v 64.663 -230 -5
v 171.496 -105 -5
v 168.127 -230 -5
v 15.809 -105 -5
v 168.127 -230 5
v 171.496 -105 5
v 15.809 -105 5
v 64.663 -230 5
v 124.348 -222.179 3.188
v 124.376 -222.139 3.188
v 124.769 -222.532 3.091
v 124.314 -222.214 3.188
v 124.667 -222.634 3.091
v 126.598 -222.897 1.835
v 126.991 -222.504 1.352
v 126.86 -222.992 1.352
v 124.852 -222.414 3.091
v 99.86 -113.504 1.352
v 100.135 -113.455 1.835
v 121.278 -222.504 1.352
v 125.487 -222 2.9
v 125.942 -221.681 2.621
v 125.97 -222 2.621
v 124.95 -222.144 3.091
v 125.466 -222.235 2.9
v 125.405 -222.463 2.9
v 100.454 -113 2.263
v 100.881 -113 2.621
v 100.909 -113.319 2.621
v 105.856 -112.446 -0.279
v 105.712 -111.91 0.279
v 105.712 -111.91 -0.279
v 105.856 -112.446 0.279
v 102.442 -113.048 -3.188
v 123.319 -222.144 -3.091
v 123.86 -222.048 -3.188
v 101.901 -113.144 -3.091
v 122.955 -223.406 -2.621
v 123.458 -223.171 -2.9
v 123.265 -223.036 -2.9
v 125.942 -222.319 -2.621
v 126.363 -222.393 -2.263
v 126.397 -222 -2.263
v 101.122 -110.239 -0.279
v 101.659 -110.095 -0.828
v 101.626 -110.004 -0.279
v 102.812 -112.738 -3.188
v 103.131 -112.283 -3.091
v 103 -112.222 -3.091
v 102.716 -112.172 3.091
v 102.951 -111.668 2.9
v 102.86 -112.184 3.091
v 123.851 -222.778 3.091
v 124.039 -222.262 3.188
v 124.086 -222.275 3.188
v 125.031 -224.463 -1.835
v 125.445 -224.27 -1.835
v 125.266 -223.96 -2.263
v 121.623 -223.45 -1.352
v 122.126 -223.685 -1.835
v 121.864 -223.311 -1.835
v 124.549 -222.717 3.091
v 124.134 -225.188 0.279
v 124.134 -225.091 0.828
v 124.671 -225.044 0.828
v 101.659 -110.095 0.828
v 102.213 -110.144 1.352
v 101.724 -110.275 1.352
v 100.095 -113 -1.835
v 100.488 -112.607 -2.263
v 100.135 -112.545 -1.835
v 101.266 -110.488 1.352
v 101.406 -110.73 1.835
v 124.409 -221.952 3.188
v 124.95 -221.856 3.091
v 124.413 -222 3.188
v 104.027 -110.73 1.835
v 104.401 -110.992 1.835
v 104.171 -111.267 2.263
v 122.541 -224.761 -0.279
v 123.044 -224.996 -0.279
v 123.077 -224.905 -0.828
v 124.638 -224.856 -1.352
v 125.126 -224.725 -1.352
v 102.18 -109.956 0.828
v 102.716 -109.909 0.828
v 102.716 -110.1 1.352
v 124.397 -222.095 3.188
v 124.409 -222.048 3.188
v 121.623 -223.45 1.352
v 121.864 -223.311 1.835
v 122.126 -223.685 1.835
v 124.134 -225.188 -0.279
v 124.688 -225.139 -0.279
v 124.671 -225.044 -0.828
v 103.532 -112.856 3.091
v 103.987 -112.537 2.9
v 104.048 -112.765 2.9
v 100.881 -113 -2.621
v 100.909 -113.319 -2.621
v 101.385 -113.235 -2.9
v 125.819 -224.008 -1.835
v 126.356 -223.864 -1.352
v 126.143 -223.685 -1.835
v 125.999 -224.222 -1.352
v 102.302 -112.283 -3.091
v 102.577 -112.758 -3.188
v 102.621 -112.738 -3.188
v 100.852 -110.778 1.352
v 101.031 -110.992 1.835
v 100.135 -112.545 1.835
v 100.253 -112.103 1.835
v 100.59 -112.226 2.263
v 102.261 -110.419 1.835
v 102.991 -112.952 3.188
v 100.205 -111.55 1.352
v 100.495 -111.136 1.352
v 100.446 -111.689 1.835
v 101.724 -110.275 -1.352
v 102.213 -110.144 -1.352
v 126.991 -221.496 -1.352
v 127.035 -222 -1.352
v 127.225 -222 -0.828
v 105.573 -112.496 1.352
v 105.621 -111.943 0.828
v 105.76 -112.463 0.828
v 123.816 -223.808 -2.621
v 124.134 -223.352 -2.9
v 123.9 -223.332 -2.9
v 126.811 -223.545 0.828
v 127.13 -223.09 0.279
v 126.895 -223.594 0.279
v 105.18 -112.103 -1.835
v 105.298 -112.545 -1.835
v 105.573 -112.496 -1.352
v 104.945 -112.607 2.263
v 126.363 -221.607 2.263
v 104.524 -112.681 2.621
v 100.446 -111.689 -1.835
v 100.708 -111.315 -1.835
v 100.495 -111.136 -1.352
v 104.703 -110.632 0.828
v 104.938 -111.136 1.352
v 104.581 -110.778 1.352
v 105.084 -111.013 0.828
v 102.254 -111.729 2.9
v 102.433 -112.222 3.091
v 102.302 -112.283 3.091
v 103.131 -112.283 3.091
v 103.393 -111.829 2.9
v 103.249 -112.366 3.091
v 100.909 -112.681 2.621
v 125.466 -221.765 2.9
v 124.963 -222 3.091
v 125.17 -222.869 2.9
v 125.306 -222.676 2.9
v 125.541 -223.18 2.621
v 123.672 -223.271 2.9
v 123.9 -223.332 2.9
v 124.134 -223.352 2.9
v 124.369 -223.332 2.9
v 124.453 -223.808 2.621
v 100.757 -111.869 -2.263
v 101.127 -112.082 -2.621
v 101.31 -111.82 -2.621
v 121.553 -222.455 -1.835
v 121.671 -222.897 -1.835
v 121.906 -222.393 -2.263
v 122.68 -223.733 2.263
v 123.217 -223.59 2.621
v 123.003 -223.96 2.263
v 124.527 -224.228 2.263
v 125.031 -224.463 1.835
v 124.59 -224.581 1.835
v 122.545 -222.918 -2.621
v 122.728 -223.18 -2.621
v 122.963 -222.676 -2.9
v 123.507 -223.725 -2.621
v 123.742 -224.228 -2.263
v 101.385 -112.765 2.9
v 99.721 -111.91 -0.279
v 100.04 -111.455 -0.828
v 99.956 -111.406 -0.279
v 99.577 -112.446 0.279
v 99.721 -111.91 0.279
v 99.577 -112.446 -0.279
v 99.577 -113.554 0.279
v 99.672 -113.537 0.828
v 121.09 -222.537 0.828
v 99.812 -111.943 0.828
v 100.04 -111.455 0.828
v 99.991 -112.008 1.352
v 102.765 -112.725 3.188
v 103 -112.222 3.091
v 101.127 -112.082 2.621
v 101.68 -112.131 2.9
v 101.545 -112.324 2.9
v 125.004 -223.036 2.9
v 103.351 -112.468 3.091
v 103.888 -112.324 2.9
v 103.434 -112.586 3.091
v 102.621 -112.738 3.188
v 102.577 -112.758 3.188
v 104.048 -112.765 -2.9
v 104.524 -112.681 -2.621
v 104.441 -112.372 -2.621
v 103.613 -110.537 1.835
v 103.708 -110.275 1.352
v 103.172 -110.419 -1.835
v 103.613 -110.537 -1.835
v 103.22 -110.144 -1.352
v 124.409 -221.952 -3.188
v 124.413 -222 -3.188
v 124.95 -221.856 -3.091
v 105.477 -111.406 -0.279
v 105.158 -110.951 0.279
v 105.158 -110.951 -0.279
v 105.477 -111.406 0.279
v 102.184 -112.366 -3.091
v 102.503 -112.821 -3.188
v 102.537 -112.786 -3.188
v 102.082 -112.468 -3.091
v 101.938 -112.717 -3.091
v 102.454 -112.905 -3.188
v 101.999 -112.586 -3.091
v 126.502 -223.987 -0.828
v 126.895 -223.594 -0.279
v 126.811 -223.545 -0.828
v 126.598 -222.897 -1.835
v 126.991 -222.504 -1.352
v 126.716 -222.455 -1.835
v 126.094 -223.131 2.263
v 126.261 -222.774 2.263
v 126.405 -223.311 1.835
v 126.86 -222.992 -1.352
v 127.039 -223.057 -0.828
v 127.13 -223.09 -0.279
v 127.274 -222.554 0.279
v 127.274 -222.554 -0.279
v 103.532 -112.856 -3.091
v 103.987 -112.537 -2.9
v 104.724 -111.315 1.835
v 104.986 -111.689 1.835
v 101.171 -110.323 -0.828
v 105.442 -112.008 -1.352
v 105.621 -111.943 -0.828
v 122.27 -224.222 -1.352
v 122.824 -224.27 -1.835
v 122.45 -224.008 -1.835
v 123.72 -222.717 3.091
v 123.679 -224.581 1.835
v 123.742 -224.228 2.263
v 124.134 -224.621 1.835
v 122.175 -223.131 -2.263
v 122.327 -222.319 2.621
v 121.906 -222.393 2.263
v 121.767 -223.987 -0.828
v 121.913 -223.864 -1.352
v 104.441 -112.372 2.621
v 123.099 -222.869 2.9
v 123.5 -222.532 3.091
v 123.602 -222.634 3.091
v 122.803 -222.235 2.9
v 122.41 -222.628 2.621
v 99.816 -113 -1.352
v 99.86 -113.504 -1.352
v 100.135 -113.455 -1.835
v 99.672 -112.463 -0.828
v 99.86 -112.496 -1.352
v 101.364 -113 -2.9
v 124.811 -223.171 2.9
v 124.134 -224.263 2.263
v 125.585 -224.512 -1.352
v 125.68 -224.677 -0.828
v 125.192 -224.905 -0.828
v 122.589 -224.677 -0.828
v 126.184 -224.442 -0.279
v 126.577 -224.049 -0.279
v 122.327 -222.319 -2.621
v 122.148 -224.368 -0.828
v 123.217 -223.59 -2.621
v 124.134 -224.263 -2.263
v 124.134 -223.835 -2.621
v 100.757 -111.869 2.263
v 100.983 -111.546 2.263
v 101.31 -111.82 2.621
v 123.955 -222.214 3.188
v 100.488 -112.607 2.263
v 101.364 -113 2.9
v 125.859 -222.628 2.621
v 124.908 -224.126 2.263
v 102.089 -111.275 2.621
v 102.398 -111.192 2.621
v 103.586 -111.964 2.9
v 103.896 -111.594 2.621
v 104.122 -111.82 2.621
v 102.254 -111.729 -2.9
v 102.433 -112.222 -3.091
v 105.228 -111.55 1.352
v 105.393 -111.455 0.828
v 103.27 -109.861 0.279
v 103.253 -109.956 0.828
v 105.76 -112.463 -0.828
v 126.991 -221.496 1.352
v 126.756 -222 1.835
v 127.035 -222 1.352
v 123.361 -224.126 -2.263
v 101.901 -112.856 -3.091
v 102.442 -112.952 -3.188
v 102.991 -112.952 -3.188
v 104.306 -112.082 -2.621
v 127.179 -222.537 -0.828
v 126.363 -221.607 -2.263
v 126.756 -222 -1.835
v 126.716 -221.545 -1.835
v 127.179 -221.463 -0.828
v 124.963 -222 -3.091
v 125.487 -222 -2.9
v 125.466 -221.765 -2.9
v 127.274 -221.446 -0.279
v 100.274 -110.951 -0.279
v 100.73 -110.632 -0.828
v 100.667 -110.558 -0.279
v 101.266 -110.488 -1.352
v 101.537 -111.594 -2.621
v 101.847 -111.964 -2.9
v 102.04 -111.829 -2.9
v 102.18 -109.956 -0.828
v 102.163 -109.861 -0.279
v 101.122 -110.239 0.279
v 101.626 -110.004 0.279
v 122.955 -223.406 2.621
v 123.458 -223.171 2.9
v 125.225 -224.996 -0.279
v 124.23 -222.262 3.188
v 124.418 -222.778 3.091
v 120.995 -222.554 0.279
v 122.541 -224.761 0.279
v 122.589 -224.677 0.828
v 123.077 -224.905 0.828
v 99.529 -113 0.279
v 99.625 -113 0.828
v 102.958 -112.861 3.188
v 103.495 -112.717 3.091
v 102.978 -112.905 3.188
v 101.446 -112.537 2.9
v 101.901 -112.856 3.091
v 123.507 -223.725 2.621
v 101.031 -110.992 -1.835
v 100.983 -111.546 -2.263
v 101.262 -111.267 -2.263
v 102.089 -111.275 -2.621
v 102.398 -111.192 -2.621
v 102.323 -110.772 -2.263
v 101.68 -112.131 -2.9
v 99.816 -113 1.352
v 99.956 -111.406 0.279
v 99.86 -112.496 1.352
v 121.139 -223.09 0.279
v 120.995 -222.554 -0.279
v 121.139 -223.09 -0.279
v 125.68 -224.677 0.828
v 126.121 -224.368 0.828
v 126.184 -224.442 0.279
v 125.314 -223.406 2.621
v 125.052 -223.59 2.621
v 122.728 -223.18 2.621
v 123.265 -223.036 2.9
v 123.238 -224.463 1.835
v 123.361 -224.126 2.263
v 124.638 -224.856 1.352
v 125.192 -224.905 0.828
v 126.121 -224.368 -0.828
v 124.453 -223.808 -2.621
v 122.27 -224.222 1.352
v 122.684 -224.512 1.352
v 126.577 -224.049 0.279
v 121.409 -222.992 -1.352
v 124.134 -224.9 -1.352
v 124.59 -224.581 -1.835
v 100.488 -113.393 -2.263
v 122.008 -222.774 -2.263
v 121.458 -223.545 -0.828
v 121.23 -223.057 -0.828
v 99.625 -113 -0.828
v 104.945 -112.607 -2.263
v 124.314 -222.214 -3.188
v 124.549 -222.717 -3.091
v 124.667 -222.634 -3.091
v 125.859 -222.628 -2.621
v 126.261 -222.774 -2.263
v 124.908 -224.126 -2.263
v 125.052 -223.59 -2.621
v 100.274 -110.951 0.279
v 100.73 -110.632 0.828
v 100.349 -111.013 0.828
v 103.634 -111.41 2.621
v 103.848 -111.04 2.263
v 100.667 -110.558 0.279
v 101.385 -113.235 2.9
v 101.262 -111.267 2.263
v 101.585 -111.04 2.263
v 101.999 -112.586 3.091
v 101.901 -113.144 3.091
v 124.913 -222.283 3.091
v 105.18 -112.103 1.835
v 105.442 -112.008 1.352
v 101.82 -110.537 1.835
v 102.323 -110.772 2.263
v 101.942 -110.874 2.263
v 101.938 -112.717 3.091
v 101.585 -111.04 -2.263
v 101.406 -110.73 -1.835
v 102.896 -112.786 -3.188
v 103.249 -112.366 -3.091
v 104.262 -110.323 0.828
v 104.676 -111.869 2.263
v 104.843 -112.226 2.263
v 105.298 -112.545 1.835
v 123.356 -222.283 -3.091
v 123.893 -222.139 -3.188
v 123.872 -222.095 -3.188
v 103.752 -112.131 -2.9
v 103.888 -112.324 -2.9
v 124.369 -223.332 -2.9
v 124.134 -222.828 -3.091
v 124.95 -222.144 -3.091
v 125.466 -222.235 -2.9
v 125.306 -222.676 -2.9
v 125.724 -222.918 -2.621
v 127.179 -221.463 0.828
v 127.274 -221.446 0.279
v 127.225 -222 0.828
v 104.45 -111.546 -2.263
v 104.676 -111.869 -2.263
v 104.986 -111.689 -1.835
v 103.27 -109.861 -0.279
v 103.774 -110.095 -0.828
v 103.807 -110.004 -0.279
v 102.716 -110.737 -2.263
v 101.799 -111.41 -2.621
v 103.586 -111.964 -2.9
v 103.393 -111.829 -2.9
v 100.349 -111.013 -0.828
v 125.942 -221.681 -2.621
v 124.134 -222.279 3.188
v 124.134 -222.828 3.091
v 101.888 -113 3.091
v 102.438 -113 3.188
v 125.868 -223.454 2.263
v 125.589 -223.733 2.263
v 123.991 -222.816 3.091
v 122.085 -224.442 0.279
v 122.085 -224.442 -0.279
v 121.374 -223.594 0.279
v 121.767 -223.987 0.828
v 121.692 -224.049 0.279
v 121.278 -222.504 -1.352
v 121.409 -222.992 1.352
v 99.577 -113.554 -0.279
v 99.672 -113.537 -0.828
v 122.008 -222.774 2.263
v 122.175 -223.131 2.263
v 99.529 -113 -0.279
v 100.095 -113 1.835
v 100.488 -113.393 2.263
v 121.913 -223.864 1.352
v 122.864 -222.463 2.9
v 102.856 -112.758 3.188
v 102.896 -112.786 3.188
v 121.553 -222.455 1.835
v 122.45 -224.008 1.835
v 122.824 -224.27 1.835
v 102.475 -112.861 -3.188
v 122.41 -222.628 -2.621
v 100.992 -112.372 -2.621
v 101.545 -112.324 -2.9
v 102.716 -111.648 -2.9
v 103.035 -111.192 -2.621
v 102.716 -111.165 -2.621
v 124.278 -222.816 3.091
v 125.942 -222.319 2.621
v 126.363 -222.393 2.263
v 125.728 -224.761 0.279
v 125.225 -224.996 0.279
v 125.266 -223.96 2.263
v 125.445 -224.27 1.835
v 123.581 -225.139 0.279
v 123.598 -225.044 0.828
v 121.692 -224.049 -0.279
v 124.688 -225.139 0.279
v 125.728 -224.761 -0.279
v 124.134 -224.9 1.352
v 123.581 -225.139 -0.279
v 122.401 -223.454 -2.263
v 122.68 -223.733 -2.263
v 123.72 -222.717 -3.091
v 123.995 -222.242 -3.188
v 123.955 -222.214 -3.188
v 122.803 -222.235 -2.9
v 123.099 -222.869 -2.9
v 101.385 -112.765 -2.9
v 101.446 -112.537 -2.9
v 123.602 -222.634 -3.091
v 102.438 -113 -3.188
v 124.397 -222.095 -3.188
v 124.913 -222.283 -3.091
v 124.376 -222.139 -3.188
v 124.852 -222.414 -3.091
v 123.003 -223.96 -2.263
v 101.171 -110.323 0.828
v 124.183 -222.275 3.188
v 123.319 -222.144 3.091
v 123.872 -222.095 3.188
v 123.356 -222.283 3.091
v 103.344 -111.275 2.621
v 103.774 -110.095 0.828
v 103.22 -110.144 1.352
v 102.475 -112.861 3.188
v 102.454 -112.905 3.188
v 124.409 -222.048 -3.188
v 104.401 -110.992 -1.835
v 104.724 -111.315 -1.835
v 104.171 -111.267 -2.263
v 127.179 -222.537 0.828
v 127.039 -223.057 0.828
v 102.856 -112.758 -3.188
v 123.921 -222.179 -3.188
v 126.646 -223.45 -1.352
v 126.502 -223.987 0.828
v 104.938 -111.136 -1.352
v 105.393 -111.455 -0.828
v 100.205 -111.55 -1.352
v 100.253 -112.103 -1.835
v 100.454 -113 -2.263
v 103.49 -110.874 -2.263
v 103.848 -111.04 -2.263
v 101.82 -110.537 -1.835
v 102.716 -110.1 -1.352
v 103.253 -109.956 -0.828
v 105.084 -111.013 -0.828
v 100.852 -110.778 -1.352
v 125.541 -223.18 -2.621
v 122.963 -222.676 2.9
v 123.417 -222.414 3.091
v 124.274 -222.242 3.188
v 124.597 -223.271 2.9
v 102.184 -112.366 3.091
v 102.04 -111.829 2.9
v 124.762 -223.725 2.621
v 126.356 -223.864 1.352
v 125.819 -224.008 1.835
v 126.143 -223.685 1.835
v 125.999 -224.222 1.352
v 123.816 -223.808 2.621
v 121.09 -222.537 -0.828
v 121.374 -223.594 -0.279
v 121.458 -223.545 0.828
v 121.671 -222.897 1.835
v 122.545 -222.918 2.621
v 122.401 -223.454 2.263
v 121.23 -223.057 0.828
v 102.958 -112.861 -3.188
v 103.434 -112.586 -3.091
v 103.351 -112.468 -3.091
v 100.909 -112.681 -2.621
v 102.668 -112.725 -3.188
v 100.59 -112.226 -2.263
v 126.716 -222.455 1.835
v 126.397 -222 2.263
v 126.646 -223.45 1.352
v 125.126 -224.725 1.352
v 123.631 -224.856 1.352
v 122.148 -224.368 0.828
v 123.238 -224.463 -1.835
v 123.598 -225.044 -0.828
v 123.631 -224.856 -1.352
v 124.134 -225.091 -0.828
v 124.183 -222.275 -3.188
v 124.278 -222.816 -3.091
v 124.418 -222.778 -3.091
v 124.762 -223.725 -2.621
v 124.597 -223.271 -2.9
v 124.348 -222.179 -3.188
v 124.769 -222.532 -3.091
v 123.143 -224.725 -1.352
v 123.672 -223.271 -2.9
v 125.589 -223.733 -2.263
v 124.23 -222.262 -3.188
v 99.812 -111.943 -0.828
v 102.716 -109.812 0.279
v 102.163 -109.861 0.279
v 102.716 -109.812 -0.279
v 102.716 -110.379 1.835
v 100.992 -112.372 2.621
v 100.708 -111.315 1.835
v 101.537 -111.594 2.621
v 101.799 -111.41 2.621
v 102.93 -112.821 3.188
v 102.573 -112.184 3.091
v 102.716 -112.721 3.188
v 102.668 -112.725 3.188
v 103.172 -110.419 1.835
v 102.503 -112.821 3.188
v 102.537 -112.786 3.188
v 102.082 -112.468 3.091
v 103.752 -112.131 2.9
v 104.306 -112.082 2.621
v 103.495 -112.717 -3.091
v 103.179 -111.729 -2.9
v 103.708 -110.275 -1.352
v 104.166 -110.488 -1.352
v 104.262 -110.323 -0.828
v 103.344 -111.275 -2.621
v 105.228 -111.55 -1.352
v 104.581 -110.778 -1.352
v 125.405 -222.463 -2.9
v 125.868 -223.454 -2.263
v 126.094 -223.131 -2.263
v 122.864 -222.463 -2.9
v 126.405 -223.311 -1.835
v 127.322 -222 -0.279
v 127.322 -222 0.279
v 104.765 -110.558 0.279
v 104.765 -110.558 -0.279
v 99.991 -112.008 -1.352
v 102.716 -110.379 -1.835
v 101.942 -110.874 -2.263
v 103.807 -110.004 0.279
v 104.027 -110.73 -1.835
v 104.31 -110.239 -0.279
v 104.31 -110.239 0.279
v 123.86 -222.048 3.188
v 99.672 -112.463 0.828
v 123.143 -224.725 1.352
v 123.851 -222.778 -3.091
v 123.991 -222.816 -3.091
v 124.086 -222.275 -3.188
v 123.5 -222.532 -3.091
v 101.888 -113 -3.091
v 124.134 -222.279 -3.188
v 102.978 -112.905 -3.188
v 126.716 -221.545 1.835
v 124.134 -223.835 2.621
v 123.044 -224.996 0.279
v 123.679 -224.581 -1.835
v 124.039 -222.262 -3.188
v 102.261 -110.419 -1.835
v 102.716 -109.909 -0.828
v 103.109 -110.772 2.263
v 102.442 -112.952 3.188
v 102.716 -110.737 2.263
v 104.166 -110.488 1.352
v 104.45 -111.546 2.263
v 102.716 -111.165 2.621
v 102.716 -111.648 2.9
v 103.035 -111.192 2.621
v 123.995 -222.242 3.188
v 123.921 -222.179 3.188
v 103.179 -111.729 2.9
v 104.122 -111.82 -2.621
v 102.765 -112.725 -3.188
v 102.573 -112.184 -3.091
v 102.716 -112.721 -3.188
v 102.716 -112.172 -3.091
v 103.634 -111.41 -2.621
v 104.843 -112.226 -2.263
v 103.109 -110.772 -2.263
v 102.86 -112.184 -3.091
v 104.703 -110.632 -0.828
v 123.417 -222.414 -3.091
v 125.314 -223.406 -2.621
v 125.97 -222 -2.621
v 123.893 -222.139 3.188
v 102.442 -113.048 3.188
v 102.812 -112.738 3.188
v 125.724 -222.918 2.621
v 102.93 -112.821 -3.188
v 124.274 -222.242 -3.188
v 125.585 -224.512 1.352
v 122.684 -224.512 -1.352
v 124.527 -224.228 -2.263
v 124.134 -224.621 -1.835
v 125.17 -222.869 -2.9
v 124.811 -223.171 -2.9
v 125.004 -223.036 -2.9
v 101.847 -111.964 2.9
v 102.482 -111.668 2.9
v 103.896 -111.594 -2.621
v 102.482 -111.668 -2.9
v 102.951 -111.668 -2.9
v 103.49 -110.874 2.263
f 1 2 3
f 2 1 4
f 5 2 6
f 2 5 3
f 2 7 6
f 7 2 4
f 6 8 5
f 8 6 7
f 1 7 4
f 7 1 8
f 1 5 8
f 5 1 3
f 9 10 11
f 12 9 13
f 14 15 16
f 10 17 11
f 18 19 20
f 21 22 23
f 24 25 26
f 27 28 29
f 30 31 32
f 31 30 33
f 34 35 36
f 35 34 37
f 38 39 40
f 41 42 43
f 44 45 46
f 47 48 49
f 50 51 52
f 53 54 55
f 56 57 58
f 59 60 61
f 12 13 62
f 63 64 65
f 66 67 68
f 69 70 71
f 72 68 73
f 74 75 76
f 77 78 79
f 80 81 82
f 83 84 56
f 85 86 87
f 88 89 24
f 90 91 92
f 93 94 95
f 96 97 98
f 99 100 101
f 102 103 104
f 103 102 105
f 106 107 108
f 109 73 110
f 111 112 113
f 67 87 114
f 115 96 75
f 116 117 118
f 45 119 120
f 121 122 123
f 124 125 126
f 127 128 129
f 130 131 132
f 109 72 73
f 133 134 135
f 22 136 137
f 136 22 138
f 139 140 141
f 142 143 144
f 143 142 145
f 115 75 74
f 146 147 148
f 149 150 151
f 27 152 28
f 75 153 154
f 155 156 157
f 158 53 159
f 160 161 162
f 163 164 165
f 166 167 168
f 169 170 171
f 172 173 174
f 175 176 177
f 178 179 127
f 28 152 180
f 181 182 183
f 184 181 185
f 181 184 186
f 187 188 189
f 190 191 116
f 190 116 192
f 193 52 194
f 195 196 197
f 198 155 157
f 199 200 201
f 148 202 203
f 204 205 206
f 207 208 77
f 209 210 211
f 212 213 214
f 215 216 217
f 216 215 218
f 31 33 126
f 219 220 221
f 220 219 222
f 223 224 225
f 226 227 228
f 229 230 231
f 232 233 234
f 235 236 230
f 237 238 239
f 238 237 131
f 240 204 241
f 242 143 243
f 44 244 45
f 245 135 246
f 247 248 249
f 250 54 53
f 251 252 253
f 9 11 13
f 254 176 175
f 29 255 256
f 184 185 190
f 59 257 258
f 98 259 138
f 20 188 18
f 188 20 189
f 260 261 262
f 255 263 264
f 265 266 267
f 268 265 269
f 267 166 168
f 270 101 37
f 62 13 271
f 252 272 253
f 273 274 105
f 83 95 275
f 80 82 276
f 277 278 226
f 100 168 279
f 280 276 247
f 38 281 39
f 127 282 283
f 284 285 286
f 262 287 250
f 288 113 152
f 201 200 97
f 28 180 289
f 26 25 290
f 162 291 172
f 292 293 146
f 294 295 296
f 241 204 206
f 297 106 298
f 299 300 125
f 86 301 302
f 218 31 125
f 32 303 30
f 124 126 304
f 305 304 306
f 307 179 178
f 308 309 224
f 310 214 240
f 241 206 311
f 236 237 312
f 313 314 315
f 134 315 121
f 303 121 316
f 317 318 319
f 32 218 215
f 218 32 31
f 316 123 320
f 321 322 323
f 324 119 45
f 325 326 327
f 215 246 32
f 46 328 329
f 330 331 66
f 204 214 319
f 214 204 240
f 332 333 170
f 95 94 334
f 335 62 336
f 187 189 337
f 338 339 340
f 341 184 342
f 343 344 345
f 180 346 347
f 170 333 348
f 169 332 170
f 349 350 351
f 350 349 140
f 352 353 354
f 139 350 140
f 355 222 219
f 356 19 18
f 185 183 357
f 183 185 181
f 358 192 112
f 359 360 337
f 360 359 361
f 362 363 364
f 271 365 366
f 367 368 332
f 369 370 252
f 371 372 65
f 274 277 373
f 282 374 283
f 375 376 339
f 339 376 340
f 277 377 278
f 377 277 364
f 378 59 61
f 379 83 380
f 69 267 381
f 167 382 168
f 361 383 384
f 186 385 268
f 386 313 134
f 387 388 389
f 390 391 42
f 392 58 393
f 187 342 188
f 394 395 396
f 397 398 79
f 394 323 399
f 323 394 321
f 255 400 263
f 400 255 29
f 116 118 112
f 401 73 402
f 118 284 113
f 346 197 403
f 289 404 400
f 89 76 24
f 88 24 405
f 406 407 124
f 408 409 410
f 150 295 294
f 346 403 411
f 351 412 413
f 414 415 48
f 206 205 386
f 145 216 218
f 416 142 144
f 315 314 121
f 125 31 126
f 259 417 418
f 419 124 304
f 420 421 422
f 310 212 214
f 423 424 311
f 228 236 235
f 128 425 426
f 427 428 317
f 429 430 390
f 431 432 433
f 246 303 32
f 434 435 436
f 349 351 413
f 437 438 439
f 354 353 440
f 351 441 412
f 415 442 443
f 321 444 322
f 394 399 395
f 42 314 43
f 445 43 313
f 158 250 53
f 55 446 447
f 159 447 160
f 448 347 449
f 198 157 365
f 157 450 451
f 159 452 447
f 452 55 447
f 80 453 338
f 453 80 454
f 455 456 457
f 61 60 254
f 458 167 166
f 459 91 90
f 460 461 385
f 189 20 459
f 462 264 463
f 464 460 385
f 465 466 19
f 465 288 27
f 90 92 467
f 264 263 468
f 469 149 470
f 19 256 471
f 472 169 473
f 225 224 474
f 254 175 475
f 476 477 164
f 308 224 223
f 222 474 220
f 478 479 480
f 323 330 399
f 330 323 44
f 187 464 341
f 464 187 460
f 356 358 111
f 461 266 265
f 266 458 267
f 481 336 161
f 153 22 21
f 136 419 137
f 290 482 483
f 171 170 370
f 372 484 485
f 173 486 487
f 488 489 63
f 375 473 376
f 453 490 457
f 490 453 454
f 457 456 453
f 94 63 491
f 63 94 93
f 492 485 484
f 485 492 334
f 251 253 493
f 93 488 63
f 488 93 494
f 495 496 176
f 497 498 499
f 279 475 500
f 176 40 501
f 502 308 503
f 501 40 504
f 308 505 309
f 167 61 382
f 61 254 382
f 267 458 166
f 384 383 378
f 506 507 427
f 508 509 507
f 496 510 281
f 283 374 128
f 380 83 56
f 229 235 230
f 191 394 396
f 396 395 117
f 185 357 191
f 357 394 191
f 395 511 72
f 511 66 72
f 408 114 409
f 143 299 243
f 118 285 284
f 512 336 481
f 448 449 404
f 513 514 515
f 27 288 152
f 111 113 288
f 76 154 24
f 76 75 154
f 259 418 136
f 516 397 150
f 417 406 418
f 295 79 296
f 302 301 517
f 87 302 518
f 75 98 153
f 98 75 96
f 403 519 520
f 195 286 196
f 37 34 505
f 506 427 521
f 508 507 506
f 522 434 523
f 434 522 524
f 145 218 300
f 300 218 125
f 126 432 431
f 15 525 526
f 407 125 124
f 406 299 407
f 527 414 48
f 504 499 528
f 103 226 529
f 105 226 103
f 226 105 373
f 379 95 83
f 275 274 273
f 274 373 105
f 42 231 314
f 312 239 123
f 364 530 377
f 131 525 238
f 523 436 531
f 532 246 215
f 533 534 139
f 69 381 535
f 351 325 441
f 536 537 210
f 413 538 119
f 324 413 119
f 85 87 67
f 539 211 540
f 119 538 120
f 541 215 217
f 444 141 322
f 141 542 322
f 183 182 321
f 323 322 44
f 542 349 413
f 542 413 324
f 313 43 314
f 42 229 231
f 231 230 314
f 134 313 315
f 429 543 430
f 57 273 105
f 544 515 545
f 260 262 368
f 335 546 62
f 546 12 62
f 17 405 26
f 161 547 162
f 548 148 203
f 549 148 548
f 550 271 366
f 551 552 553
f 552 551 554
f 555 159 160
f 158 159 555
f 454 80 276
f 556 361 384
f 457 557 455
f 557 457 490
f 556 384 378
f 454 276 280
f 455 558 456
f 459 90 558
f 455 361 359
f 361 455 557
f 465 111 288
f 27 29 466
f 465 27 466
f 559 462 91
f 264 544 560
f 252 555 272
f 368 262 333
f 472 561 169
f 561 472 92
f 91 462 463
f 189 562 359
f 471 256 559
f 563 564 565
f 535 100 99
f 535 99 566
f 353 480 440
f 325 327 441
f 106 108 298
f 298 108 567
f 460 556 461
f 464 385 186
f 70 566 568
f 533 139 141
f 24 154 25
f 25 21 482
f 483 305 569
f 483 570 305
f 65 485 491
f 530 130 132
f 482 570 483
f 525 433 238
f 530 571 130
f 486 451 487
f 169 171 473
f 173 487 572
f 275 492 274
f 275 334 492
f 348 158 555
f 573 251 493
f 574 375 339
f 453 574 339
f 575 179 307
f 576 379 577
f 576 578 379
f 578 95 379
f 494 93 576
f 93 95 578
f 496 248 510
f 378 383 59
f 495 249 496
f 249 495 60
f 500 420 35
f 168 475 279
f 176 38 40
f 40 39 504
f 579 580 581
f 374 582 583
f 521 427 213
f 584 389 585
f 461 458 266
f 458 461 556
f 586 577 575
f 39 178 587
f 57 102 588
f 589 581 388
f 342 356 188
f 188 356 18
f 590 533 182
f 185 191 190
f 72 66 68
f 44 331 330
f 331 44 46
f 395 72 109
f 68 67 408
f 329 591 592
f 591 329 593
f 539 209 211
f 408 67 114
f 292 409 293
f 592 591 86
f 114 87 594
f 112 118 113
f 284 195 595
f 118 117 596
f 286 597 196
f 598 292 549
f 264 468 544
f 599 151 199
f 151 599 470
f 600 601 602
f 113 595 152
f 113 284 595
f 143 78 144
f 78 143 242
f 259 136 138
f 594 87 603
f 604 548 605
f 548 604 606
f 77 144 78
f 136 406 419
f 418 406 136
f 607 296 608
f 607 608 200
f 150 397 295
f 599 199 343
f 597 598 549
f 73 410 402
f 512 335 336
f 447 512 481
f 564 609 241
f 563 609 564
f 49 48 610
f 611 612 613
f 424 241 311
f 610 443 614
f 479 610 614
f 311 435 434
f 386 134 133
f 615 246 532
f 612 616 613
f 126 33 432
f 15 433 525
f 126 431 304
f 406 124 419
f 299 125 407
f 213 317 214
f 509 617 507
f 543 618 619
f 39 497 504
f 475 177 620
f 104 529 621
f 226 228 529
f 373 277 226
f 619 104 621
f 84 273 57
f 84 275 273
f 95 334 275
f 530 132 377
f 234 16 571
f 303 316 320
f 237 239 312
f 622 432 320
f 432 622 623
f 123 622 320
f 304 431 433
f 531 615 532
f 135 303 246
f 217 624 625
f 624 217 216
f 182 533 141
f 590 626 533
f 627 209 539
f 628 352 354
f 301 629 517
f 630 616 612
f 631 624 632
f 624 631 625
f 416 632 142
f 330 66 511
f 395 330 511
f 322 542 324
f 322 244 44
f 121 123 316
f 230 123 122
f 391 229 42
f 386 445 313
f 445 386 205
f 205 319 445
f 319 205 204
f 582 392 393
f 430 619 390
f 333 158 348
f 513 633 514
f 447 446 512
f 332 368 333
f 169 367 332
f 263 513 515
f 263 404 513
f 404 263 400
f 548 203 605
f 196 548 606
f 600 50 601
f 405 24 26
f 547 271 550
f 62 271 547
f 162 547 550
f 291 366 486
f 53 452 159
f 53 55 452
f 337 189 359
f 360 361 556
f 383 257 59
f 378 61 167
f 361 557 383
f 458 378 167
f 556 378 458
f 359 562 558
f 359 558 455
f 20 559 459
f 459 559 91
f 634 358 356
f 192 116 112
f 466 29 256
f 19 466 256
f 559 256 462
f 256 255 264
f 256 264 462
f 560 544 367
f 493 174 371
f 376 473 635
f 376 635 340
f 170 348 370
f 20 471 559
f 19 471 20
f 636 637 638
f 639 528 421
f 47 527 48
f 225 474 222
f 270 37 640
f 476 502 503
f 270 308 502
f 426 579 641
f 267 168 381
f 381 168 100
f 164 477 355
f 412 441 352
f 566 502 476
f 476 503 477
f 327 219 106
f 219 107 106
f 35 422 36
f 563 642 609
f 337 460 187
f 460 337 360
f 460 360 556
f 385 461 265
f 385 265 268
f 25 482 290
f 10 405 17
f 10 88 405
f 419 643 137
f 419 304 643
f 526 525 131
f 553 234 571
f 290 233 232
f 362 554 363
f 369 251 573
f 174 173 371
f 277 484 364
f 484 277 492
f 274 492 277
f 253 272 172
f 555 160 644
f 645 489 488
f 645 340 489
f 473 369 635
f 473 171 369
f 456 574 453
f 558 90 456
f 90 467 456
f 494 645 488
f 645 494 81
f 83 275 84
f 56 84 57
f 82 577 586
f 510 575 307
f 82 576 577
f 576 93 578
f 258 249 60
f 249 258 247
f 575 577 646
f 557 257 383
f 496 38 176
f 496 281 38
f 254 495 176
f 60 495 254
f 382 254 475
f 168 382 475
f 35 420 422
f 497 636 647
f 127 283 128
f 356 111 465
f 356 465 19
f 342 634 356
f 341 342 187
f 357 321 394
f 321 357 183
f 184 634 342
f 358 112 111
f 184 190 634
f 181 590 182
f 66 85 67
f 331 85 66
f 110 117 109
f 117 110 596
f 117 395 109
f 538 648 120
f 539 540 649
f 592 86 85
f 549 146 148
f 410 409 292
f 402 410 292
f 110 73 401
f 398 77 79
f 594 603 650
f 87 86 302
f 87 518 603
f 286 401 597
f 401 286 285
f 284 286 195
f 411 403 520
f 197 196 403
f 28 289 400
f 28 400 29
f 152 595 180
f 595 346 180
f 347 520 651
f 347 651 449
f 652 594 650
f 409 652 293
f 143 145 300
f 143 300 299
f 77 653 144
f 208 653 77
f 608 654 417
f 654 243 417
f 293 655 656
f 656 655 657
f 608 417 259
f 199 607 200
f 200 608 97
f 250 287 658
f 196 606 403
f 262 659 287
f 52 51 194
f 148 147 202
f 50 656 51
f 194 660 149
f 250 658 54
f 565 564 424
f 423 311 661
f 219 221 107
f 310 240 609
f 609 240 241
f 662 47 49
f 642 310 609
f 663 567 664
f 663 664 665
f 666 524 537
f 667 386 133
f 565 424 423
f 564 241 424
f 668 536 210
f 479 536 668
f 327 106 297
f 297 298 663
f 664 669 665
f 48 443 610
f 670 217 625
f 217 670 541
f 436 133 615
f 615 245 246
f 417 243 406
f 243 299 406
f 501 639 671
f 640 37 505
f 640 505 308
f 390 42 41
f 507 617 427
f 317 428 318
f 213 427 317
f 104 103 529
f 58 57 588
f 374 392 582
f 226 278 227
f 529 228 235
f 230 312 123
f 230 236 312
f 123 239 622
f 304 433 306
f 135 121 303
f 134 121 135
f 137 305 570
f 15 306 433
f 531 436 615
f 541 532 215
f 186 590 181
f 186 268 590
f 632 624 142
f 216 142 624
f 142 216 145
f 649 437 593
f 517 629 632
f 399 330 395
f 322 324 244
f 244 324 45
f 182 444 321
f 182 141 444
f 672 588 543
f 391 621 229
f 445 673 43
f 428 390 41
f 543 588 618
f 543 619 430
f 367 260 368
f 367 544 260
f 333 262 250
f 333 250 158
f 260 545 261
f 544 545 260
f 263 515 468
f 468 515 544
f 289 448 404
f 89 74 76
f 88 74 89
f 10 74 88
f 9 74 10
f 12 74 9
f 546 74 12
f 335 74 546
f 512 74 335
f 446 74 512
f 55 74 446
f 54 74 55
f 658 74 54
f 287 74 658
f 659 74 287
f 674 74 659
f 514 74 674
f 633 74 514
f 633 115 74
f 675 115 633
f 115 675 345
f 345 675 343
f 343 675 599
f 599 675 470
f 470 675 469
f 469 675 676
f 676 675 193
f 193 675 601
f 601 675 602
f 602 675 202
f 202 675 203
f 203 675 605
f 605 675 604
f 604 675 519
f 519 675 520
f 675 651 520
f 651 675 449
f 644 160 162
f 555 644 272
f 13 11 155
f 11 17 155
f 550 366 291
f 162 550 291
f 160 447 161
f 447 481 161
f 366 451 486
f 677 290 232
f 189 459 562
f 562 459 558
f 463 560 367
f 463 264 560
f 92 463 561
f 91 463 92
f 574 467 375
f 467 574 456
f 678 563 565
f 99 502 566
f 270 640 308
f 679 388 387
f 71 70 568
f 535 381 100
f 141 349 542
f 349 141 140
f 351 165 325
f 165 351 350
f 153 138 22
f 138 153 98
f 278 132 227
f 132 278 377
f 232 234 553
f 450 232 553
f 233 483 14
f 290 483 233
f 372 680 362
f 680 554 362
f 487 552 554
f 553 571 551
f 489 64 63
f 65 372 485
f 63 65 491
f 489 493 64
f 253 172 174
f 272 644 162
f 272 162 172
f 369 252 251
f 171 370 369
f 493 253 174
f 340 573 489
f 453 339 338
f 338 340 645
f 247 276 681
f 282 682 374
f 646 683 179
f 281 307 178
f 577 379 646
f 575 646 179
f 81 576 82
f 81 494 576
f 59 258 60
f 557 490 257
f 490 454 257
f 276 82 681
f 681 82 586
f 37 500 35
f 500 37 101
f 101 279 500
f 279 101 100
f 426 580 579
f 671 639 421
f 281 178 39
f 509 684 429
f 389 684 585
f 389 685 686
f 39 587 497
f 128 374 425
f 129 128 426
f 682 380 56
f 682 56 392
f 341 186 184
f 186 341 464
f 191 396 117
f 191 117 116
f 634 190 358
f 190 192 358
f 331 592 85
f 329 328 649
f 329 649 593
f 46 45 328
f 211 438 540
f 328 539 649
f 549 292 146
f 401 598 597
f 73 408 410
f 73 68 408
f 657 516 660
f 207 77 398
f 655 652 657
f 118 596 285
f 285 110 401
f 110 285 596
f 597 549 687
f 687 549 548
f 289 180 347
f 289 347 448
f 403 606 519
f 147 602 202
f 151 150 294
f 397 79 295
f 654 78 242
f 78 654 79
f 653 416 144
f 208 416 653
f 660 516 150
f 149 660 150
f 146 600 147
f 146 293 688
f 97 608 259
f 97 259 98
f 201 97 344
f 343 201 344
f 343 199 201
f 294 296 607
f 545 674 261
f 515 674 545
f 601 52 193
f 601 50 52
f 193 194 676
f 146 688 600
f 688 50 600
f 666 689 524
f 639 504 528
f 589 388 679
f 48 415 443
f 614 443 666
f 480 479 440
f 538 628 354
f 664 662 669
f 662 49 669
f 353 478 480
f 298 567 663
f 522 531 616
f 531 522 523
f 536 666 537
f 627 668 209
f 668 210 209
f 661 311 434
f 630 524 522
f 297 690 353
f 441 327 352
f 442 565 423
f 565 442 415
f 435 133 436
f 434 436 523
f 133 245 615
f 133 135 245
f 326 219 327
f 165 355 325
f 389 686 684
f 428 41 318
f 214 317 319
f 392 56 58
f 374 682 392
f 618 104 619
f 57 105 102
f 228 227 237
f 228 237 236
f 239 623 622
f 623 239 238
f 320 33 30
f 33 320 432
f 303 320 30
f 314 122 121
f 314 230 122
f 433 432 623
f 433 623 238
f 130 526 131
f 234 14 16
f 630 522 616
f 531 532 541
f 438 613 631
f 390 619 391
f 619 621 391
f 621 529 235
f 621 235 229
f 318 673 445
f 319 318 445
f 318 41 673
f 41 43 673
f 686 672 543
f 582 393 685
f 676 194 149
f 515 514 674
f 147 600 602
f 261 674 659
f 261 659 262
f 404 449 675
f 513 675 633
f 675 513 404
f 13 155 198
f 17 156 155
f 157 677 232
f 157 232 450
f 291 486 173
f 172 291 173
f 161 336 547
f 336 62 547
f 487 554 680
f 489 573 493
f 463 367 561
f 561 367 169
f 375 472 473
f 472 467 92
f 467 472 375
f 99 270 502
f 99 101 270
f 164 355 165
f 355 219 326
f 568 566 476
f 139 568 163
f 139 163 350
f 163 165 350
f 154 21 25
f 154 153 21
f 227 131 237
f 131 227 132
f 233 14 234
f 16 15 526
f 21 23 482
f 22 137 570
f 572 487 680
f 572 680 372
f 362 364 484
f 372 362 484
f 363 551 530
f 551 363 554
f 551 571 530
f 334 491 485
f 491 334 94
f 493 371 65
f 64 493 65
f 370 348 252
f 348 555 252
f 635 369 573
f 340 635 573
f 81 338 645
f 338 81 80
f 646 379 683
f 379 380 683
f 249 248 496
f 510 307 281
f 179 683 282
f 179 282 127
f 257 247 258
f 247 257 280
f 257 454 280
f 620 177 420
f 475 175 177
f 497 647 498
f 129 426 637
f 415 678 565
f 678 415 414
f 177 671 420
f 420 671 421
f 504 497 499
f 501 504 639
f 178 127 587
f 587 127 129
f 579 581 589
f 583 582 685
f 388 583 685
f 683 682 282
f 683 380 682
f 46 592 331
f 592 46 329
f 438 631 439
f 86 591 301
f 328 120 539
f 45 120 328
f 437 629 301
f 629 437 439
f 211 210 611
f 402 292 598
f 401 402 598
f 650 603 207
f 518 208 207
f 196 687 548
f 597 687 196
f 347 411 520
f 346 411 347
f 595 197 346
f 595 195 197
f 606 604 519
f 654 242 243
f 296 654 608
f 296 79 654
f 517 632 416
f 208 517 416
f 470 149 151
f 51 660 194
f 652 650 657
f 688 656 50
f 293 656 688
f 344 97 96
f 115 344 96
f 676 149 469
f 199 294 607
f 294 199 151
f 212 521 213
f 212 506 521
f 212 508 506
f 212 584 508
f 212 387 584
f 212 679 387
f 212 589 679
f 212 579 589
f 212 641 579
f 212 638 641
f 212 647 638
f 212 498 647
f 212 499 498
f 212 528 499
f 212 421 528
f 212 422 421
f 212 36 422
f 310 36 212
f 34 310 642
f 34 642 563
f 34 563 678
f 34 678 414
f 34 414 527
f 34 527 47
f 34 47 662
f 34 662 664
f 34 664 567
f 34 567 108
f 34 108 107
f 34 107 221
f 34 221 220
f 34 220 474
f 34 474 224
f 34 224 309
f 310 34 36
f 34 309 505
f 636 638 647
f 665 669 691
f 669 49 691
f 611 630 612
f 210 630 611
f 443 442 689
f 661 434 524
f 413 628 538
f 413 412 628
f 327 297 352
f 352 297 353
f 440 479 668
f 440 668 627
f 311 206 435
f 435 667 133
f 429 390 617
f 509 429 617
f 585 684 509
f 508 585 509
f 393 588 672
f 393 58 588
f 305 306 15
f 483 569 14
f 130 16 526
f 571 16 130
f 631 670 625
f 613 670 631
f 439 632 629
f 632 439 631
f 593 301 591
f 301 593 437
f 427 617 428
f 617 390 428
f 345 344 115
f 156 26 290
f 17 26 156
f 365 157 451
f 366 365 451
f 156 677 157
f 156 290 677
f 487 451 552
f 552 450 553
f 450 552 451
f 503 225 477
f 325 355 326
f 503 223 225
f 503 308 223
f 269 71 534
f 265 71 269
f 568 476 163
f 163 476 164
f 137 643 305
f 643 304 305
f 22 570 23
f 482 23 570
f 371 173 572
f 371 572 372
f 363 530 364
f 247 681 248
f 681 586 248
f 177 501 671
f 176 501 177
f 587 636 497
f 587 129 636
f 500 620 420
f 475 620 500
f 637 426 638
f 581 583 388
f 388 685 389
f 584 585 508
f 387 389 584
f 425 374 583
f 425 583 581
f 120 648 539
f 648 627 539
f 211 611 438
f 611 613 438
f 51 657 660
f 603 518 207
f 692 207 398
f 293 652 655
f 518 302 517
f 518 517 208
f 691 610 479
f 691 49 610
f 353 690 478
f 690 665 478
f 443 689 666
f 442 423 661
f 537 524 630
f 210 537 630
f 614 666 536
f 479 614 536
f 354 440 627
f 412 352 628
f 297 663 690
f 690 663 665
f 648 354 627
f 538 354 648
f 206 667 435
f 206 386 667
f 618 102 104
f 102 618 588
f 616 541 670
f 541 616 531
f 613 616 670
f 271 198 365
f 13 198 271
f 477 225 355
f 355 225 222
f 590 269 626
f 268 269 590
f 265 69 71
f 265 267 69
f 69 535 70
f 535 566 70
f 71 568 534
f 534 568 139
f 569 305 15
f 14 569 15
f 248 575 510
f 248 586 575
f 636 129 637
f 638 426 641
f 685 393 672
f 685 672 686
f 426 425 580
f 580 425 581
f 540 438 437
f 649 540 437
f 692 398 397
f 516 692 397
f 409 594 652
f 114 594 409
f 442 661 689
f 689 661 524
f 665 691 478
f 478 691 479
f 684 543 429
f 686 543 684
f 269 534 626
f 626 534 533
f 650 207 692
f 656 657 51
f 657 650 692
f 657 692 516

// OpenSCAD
$fn=64;
module raw(){linear_extrude(height=10,center=true) polygon(points=[[15.80863,105.00000],[171.49596,105.00000],[168.12668,230.00000],[64.66307,230.00000]]);}
module spar(){hull(){translate([102.7164,113.0000,0]) sphere(d=6.4,$fn=36); translate([124.1345,222.0000,0]) sphere(d=6.4,$fn=36);}}
module wing(){difference(){raw(); spar(); }}
mirror([0,1,0]) wing();
